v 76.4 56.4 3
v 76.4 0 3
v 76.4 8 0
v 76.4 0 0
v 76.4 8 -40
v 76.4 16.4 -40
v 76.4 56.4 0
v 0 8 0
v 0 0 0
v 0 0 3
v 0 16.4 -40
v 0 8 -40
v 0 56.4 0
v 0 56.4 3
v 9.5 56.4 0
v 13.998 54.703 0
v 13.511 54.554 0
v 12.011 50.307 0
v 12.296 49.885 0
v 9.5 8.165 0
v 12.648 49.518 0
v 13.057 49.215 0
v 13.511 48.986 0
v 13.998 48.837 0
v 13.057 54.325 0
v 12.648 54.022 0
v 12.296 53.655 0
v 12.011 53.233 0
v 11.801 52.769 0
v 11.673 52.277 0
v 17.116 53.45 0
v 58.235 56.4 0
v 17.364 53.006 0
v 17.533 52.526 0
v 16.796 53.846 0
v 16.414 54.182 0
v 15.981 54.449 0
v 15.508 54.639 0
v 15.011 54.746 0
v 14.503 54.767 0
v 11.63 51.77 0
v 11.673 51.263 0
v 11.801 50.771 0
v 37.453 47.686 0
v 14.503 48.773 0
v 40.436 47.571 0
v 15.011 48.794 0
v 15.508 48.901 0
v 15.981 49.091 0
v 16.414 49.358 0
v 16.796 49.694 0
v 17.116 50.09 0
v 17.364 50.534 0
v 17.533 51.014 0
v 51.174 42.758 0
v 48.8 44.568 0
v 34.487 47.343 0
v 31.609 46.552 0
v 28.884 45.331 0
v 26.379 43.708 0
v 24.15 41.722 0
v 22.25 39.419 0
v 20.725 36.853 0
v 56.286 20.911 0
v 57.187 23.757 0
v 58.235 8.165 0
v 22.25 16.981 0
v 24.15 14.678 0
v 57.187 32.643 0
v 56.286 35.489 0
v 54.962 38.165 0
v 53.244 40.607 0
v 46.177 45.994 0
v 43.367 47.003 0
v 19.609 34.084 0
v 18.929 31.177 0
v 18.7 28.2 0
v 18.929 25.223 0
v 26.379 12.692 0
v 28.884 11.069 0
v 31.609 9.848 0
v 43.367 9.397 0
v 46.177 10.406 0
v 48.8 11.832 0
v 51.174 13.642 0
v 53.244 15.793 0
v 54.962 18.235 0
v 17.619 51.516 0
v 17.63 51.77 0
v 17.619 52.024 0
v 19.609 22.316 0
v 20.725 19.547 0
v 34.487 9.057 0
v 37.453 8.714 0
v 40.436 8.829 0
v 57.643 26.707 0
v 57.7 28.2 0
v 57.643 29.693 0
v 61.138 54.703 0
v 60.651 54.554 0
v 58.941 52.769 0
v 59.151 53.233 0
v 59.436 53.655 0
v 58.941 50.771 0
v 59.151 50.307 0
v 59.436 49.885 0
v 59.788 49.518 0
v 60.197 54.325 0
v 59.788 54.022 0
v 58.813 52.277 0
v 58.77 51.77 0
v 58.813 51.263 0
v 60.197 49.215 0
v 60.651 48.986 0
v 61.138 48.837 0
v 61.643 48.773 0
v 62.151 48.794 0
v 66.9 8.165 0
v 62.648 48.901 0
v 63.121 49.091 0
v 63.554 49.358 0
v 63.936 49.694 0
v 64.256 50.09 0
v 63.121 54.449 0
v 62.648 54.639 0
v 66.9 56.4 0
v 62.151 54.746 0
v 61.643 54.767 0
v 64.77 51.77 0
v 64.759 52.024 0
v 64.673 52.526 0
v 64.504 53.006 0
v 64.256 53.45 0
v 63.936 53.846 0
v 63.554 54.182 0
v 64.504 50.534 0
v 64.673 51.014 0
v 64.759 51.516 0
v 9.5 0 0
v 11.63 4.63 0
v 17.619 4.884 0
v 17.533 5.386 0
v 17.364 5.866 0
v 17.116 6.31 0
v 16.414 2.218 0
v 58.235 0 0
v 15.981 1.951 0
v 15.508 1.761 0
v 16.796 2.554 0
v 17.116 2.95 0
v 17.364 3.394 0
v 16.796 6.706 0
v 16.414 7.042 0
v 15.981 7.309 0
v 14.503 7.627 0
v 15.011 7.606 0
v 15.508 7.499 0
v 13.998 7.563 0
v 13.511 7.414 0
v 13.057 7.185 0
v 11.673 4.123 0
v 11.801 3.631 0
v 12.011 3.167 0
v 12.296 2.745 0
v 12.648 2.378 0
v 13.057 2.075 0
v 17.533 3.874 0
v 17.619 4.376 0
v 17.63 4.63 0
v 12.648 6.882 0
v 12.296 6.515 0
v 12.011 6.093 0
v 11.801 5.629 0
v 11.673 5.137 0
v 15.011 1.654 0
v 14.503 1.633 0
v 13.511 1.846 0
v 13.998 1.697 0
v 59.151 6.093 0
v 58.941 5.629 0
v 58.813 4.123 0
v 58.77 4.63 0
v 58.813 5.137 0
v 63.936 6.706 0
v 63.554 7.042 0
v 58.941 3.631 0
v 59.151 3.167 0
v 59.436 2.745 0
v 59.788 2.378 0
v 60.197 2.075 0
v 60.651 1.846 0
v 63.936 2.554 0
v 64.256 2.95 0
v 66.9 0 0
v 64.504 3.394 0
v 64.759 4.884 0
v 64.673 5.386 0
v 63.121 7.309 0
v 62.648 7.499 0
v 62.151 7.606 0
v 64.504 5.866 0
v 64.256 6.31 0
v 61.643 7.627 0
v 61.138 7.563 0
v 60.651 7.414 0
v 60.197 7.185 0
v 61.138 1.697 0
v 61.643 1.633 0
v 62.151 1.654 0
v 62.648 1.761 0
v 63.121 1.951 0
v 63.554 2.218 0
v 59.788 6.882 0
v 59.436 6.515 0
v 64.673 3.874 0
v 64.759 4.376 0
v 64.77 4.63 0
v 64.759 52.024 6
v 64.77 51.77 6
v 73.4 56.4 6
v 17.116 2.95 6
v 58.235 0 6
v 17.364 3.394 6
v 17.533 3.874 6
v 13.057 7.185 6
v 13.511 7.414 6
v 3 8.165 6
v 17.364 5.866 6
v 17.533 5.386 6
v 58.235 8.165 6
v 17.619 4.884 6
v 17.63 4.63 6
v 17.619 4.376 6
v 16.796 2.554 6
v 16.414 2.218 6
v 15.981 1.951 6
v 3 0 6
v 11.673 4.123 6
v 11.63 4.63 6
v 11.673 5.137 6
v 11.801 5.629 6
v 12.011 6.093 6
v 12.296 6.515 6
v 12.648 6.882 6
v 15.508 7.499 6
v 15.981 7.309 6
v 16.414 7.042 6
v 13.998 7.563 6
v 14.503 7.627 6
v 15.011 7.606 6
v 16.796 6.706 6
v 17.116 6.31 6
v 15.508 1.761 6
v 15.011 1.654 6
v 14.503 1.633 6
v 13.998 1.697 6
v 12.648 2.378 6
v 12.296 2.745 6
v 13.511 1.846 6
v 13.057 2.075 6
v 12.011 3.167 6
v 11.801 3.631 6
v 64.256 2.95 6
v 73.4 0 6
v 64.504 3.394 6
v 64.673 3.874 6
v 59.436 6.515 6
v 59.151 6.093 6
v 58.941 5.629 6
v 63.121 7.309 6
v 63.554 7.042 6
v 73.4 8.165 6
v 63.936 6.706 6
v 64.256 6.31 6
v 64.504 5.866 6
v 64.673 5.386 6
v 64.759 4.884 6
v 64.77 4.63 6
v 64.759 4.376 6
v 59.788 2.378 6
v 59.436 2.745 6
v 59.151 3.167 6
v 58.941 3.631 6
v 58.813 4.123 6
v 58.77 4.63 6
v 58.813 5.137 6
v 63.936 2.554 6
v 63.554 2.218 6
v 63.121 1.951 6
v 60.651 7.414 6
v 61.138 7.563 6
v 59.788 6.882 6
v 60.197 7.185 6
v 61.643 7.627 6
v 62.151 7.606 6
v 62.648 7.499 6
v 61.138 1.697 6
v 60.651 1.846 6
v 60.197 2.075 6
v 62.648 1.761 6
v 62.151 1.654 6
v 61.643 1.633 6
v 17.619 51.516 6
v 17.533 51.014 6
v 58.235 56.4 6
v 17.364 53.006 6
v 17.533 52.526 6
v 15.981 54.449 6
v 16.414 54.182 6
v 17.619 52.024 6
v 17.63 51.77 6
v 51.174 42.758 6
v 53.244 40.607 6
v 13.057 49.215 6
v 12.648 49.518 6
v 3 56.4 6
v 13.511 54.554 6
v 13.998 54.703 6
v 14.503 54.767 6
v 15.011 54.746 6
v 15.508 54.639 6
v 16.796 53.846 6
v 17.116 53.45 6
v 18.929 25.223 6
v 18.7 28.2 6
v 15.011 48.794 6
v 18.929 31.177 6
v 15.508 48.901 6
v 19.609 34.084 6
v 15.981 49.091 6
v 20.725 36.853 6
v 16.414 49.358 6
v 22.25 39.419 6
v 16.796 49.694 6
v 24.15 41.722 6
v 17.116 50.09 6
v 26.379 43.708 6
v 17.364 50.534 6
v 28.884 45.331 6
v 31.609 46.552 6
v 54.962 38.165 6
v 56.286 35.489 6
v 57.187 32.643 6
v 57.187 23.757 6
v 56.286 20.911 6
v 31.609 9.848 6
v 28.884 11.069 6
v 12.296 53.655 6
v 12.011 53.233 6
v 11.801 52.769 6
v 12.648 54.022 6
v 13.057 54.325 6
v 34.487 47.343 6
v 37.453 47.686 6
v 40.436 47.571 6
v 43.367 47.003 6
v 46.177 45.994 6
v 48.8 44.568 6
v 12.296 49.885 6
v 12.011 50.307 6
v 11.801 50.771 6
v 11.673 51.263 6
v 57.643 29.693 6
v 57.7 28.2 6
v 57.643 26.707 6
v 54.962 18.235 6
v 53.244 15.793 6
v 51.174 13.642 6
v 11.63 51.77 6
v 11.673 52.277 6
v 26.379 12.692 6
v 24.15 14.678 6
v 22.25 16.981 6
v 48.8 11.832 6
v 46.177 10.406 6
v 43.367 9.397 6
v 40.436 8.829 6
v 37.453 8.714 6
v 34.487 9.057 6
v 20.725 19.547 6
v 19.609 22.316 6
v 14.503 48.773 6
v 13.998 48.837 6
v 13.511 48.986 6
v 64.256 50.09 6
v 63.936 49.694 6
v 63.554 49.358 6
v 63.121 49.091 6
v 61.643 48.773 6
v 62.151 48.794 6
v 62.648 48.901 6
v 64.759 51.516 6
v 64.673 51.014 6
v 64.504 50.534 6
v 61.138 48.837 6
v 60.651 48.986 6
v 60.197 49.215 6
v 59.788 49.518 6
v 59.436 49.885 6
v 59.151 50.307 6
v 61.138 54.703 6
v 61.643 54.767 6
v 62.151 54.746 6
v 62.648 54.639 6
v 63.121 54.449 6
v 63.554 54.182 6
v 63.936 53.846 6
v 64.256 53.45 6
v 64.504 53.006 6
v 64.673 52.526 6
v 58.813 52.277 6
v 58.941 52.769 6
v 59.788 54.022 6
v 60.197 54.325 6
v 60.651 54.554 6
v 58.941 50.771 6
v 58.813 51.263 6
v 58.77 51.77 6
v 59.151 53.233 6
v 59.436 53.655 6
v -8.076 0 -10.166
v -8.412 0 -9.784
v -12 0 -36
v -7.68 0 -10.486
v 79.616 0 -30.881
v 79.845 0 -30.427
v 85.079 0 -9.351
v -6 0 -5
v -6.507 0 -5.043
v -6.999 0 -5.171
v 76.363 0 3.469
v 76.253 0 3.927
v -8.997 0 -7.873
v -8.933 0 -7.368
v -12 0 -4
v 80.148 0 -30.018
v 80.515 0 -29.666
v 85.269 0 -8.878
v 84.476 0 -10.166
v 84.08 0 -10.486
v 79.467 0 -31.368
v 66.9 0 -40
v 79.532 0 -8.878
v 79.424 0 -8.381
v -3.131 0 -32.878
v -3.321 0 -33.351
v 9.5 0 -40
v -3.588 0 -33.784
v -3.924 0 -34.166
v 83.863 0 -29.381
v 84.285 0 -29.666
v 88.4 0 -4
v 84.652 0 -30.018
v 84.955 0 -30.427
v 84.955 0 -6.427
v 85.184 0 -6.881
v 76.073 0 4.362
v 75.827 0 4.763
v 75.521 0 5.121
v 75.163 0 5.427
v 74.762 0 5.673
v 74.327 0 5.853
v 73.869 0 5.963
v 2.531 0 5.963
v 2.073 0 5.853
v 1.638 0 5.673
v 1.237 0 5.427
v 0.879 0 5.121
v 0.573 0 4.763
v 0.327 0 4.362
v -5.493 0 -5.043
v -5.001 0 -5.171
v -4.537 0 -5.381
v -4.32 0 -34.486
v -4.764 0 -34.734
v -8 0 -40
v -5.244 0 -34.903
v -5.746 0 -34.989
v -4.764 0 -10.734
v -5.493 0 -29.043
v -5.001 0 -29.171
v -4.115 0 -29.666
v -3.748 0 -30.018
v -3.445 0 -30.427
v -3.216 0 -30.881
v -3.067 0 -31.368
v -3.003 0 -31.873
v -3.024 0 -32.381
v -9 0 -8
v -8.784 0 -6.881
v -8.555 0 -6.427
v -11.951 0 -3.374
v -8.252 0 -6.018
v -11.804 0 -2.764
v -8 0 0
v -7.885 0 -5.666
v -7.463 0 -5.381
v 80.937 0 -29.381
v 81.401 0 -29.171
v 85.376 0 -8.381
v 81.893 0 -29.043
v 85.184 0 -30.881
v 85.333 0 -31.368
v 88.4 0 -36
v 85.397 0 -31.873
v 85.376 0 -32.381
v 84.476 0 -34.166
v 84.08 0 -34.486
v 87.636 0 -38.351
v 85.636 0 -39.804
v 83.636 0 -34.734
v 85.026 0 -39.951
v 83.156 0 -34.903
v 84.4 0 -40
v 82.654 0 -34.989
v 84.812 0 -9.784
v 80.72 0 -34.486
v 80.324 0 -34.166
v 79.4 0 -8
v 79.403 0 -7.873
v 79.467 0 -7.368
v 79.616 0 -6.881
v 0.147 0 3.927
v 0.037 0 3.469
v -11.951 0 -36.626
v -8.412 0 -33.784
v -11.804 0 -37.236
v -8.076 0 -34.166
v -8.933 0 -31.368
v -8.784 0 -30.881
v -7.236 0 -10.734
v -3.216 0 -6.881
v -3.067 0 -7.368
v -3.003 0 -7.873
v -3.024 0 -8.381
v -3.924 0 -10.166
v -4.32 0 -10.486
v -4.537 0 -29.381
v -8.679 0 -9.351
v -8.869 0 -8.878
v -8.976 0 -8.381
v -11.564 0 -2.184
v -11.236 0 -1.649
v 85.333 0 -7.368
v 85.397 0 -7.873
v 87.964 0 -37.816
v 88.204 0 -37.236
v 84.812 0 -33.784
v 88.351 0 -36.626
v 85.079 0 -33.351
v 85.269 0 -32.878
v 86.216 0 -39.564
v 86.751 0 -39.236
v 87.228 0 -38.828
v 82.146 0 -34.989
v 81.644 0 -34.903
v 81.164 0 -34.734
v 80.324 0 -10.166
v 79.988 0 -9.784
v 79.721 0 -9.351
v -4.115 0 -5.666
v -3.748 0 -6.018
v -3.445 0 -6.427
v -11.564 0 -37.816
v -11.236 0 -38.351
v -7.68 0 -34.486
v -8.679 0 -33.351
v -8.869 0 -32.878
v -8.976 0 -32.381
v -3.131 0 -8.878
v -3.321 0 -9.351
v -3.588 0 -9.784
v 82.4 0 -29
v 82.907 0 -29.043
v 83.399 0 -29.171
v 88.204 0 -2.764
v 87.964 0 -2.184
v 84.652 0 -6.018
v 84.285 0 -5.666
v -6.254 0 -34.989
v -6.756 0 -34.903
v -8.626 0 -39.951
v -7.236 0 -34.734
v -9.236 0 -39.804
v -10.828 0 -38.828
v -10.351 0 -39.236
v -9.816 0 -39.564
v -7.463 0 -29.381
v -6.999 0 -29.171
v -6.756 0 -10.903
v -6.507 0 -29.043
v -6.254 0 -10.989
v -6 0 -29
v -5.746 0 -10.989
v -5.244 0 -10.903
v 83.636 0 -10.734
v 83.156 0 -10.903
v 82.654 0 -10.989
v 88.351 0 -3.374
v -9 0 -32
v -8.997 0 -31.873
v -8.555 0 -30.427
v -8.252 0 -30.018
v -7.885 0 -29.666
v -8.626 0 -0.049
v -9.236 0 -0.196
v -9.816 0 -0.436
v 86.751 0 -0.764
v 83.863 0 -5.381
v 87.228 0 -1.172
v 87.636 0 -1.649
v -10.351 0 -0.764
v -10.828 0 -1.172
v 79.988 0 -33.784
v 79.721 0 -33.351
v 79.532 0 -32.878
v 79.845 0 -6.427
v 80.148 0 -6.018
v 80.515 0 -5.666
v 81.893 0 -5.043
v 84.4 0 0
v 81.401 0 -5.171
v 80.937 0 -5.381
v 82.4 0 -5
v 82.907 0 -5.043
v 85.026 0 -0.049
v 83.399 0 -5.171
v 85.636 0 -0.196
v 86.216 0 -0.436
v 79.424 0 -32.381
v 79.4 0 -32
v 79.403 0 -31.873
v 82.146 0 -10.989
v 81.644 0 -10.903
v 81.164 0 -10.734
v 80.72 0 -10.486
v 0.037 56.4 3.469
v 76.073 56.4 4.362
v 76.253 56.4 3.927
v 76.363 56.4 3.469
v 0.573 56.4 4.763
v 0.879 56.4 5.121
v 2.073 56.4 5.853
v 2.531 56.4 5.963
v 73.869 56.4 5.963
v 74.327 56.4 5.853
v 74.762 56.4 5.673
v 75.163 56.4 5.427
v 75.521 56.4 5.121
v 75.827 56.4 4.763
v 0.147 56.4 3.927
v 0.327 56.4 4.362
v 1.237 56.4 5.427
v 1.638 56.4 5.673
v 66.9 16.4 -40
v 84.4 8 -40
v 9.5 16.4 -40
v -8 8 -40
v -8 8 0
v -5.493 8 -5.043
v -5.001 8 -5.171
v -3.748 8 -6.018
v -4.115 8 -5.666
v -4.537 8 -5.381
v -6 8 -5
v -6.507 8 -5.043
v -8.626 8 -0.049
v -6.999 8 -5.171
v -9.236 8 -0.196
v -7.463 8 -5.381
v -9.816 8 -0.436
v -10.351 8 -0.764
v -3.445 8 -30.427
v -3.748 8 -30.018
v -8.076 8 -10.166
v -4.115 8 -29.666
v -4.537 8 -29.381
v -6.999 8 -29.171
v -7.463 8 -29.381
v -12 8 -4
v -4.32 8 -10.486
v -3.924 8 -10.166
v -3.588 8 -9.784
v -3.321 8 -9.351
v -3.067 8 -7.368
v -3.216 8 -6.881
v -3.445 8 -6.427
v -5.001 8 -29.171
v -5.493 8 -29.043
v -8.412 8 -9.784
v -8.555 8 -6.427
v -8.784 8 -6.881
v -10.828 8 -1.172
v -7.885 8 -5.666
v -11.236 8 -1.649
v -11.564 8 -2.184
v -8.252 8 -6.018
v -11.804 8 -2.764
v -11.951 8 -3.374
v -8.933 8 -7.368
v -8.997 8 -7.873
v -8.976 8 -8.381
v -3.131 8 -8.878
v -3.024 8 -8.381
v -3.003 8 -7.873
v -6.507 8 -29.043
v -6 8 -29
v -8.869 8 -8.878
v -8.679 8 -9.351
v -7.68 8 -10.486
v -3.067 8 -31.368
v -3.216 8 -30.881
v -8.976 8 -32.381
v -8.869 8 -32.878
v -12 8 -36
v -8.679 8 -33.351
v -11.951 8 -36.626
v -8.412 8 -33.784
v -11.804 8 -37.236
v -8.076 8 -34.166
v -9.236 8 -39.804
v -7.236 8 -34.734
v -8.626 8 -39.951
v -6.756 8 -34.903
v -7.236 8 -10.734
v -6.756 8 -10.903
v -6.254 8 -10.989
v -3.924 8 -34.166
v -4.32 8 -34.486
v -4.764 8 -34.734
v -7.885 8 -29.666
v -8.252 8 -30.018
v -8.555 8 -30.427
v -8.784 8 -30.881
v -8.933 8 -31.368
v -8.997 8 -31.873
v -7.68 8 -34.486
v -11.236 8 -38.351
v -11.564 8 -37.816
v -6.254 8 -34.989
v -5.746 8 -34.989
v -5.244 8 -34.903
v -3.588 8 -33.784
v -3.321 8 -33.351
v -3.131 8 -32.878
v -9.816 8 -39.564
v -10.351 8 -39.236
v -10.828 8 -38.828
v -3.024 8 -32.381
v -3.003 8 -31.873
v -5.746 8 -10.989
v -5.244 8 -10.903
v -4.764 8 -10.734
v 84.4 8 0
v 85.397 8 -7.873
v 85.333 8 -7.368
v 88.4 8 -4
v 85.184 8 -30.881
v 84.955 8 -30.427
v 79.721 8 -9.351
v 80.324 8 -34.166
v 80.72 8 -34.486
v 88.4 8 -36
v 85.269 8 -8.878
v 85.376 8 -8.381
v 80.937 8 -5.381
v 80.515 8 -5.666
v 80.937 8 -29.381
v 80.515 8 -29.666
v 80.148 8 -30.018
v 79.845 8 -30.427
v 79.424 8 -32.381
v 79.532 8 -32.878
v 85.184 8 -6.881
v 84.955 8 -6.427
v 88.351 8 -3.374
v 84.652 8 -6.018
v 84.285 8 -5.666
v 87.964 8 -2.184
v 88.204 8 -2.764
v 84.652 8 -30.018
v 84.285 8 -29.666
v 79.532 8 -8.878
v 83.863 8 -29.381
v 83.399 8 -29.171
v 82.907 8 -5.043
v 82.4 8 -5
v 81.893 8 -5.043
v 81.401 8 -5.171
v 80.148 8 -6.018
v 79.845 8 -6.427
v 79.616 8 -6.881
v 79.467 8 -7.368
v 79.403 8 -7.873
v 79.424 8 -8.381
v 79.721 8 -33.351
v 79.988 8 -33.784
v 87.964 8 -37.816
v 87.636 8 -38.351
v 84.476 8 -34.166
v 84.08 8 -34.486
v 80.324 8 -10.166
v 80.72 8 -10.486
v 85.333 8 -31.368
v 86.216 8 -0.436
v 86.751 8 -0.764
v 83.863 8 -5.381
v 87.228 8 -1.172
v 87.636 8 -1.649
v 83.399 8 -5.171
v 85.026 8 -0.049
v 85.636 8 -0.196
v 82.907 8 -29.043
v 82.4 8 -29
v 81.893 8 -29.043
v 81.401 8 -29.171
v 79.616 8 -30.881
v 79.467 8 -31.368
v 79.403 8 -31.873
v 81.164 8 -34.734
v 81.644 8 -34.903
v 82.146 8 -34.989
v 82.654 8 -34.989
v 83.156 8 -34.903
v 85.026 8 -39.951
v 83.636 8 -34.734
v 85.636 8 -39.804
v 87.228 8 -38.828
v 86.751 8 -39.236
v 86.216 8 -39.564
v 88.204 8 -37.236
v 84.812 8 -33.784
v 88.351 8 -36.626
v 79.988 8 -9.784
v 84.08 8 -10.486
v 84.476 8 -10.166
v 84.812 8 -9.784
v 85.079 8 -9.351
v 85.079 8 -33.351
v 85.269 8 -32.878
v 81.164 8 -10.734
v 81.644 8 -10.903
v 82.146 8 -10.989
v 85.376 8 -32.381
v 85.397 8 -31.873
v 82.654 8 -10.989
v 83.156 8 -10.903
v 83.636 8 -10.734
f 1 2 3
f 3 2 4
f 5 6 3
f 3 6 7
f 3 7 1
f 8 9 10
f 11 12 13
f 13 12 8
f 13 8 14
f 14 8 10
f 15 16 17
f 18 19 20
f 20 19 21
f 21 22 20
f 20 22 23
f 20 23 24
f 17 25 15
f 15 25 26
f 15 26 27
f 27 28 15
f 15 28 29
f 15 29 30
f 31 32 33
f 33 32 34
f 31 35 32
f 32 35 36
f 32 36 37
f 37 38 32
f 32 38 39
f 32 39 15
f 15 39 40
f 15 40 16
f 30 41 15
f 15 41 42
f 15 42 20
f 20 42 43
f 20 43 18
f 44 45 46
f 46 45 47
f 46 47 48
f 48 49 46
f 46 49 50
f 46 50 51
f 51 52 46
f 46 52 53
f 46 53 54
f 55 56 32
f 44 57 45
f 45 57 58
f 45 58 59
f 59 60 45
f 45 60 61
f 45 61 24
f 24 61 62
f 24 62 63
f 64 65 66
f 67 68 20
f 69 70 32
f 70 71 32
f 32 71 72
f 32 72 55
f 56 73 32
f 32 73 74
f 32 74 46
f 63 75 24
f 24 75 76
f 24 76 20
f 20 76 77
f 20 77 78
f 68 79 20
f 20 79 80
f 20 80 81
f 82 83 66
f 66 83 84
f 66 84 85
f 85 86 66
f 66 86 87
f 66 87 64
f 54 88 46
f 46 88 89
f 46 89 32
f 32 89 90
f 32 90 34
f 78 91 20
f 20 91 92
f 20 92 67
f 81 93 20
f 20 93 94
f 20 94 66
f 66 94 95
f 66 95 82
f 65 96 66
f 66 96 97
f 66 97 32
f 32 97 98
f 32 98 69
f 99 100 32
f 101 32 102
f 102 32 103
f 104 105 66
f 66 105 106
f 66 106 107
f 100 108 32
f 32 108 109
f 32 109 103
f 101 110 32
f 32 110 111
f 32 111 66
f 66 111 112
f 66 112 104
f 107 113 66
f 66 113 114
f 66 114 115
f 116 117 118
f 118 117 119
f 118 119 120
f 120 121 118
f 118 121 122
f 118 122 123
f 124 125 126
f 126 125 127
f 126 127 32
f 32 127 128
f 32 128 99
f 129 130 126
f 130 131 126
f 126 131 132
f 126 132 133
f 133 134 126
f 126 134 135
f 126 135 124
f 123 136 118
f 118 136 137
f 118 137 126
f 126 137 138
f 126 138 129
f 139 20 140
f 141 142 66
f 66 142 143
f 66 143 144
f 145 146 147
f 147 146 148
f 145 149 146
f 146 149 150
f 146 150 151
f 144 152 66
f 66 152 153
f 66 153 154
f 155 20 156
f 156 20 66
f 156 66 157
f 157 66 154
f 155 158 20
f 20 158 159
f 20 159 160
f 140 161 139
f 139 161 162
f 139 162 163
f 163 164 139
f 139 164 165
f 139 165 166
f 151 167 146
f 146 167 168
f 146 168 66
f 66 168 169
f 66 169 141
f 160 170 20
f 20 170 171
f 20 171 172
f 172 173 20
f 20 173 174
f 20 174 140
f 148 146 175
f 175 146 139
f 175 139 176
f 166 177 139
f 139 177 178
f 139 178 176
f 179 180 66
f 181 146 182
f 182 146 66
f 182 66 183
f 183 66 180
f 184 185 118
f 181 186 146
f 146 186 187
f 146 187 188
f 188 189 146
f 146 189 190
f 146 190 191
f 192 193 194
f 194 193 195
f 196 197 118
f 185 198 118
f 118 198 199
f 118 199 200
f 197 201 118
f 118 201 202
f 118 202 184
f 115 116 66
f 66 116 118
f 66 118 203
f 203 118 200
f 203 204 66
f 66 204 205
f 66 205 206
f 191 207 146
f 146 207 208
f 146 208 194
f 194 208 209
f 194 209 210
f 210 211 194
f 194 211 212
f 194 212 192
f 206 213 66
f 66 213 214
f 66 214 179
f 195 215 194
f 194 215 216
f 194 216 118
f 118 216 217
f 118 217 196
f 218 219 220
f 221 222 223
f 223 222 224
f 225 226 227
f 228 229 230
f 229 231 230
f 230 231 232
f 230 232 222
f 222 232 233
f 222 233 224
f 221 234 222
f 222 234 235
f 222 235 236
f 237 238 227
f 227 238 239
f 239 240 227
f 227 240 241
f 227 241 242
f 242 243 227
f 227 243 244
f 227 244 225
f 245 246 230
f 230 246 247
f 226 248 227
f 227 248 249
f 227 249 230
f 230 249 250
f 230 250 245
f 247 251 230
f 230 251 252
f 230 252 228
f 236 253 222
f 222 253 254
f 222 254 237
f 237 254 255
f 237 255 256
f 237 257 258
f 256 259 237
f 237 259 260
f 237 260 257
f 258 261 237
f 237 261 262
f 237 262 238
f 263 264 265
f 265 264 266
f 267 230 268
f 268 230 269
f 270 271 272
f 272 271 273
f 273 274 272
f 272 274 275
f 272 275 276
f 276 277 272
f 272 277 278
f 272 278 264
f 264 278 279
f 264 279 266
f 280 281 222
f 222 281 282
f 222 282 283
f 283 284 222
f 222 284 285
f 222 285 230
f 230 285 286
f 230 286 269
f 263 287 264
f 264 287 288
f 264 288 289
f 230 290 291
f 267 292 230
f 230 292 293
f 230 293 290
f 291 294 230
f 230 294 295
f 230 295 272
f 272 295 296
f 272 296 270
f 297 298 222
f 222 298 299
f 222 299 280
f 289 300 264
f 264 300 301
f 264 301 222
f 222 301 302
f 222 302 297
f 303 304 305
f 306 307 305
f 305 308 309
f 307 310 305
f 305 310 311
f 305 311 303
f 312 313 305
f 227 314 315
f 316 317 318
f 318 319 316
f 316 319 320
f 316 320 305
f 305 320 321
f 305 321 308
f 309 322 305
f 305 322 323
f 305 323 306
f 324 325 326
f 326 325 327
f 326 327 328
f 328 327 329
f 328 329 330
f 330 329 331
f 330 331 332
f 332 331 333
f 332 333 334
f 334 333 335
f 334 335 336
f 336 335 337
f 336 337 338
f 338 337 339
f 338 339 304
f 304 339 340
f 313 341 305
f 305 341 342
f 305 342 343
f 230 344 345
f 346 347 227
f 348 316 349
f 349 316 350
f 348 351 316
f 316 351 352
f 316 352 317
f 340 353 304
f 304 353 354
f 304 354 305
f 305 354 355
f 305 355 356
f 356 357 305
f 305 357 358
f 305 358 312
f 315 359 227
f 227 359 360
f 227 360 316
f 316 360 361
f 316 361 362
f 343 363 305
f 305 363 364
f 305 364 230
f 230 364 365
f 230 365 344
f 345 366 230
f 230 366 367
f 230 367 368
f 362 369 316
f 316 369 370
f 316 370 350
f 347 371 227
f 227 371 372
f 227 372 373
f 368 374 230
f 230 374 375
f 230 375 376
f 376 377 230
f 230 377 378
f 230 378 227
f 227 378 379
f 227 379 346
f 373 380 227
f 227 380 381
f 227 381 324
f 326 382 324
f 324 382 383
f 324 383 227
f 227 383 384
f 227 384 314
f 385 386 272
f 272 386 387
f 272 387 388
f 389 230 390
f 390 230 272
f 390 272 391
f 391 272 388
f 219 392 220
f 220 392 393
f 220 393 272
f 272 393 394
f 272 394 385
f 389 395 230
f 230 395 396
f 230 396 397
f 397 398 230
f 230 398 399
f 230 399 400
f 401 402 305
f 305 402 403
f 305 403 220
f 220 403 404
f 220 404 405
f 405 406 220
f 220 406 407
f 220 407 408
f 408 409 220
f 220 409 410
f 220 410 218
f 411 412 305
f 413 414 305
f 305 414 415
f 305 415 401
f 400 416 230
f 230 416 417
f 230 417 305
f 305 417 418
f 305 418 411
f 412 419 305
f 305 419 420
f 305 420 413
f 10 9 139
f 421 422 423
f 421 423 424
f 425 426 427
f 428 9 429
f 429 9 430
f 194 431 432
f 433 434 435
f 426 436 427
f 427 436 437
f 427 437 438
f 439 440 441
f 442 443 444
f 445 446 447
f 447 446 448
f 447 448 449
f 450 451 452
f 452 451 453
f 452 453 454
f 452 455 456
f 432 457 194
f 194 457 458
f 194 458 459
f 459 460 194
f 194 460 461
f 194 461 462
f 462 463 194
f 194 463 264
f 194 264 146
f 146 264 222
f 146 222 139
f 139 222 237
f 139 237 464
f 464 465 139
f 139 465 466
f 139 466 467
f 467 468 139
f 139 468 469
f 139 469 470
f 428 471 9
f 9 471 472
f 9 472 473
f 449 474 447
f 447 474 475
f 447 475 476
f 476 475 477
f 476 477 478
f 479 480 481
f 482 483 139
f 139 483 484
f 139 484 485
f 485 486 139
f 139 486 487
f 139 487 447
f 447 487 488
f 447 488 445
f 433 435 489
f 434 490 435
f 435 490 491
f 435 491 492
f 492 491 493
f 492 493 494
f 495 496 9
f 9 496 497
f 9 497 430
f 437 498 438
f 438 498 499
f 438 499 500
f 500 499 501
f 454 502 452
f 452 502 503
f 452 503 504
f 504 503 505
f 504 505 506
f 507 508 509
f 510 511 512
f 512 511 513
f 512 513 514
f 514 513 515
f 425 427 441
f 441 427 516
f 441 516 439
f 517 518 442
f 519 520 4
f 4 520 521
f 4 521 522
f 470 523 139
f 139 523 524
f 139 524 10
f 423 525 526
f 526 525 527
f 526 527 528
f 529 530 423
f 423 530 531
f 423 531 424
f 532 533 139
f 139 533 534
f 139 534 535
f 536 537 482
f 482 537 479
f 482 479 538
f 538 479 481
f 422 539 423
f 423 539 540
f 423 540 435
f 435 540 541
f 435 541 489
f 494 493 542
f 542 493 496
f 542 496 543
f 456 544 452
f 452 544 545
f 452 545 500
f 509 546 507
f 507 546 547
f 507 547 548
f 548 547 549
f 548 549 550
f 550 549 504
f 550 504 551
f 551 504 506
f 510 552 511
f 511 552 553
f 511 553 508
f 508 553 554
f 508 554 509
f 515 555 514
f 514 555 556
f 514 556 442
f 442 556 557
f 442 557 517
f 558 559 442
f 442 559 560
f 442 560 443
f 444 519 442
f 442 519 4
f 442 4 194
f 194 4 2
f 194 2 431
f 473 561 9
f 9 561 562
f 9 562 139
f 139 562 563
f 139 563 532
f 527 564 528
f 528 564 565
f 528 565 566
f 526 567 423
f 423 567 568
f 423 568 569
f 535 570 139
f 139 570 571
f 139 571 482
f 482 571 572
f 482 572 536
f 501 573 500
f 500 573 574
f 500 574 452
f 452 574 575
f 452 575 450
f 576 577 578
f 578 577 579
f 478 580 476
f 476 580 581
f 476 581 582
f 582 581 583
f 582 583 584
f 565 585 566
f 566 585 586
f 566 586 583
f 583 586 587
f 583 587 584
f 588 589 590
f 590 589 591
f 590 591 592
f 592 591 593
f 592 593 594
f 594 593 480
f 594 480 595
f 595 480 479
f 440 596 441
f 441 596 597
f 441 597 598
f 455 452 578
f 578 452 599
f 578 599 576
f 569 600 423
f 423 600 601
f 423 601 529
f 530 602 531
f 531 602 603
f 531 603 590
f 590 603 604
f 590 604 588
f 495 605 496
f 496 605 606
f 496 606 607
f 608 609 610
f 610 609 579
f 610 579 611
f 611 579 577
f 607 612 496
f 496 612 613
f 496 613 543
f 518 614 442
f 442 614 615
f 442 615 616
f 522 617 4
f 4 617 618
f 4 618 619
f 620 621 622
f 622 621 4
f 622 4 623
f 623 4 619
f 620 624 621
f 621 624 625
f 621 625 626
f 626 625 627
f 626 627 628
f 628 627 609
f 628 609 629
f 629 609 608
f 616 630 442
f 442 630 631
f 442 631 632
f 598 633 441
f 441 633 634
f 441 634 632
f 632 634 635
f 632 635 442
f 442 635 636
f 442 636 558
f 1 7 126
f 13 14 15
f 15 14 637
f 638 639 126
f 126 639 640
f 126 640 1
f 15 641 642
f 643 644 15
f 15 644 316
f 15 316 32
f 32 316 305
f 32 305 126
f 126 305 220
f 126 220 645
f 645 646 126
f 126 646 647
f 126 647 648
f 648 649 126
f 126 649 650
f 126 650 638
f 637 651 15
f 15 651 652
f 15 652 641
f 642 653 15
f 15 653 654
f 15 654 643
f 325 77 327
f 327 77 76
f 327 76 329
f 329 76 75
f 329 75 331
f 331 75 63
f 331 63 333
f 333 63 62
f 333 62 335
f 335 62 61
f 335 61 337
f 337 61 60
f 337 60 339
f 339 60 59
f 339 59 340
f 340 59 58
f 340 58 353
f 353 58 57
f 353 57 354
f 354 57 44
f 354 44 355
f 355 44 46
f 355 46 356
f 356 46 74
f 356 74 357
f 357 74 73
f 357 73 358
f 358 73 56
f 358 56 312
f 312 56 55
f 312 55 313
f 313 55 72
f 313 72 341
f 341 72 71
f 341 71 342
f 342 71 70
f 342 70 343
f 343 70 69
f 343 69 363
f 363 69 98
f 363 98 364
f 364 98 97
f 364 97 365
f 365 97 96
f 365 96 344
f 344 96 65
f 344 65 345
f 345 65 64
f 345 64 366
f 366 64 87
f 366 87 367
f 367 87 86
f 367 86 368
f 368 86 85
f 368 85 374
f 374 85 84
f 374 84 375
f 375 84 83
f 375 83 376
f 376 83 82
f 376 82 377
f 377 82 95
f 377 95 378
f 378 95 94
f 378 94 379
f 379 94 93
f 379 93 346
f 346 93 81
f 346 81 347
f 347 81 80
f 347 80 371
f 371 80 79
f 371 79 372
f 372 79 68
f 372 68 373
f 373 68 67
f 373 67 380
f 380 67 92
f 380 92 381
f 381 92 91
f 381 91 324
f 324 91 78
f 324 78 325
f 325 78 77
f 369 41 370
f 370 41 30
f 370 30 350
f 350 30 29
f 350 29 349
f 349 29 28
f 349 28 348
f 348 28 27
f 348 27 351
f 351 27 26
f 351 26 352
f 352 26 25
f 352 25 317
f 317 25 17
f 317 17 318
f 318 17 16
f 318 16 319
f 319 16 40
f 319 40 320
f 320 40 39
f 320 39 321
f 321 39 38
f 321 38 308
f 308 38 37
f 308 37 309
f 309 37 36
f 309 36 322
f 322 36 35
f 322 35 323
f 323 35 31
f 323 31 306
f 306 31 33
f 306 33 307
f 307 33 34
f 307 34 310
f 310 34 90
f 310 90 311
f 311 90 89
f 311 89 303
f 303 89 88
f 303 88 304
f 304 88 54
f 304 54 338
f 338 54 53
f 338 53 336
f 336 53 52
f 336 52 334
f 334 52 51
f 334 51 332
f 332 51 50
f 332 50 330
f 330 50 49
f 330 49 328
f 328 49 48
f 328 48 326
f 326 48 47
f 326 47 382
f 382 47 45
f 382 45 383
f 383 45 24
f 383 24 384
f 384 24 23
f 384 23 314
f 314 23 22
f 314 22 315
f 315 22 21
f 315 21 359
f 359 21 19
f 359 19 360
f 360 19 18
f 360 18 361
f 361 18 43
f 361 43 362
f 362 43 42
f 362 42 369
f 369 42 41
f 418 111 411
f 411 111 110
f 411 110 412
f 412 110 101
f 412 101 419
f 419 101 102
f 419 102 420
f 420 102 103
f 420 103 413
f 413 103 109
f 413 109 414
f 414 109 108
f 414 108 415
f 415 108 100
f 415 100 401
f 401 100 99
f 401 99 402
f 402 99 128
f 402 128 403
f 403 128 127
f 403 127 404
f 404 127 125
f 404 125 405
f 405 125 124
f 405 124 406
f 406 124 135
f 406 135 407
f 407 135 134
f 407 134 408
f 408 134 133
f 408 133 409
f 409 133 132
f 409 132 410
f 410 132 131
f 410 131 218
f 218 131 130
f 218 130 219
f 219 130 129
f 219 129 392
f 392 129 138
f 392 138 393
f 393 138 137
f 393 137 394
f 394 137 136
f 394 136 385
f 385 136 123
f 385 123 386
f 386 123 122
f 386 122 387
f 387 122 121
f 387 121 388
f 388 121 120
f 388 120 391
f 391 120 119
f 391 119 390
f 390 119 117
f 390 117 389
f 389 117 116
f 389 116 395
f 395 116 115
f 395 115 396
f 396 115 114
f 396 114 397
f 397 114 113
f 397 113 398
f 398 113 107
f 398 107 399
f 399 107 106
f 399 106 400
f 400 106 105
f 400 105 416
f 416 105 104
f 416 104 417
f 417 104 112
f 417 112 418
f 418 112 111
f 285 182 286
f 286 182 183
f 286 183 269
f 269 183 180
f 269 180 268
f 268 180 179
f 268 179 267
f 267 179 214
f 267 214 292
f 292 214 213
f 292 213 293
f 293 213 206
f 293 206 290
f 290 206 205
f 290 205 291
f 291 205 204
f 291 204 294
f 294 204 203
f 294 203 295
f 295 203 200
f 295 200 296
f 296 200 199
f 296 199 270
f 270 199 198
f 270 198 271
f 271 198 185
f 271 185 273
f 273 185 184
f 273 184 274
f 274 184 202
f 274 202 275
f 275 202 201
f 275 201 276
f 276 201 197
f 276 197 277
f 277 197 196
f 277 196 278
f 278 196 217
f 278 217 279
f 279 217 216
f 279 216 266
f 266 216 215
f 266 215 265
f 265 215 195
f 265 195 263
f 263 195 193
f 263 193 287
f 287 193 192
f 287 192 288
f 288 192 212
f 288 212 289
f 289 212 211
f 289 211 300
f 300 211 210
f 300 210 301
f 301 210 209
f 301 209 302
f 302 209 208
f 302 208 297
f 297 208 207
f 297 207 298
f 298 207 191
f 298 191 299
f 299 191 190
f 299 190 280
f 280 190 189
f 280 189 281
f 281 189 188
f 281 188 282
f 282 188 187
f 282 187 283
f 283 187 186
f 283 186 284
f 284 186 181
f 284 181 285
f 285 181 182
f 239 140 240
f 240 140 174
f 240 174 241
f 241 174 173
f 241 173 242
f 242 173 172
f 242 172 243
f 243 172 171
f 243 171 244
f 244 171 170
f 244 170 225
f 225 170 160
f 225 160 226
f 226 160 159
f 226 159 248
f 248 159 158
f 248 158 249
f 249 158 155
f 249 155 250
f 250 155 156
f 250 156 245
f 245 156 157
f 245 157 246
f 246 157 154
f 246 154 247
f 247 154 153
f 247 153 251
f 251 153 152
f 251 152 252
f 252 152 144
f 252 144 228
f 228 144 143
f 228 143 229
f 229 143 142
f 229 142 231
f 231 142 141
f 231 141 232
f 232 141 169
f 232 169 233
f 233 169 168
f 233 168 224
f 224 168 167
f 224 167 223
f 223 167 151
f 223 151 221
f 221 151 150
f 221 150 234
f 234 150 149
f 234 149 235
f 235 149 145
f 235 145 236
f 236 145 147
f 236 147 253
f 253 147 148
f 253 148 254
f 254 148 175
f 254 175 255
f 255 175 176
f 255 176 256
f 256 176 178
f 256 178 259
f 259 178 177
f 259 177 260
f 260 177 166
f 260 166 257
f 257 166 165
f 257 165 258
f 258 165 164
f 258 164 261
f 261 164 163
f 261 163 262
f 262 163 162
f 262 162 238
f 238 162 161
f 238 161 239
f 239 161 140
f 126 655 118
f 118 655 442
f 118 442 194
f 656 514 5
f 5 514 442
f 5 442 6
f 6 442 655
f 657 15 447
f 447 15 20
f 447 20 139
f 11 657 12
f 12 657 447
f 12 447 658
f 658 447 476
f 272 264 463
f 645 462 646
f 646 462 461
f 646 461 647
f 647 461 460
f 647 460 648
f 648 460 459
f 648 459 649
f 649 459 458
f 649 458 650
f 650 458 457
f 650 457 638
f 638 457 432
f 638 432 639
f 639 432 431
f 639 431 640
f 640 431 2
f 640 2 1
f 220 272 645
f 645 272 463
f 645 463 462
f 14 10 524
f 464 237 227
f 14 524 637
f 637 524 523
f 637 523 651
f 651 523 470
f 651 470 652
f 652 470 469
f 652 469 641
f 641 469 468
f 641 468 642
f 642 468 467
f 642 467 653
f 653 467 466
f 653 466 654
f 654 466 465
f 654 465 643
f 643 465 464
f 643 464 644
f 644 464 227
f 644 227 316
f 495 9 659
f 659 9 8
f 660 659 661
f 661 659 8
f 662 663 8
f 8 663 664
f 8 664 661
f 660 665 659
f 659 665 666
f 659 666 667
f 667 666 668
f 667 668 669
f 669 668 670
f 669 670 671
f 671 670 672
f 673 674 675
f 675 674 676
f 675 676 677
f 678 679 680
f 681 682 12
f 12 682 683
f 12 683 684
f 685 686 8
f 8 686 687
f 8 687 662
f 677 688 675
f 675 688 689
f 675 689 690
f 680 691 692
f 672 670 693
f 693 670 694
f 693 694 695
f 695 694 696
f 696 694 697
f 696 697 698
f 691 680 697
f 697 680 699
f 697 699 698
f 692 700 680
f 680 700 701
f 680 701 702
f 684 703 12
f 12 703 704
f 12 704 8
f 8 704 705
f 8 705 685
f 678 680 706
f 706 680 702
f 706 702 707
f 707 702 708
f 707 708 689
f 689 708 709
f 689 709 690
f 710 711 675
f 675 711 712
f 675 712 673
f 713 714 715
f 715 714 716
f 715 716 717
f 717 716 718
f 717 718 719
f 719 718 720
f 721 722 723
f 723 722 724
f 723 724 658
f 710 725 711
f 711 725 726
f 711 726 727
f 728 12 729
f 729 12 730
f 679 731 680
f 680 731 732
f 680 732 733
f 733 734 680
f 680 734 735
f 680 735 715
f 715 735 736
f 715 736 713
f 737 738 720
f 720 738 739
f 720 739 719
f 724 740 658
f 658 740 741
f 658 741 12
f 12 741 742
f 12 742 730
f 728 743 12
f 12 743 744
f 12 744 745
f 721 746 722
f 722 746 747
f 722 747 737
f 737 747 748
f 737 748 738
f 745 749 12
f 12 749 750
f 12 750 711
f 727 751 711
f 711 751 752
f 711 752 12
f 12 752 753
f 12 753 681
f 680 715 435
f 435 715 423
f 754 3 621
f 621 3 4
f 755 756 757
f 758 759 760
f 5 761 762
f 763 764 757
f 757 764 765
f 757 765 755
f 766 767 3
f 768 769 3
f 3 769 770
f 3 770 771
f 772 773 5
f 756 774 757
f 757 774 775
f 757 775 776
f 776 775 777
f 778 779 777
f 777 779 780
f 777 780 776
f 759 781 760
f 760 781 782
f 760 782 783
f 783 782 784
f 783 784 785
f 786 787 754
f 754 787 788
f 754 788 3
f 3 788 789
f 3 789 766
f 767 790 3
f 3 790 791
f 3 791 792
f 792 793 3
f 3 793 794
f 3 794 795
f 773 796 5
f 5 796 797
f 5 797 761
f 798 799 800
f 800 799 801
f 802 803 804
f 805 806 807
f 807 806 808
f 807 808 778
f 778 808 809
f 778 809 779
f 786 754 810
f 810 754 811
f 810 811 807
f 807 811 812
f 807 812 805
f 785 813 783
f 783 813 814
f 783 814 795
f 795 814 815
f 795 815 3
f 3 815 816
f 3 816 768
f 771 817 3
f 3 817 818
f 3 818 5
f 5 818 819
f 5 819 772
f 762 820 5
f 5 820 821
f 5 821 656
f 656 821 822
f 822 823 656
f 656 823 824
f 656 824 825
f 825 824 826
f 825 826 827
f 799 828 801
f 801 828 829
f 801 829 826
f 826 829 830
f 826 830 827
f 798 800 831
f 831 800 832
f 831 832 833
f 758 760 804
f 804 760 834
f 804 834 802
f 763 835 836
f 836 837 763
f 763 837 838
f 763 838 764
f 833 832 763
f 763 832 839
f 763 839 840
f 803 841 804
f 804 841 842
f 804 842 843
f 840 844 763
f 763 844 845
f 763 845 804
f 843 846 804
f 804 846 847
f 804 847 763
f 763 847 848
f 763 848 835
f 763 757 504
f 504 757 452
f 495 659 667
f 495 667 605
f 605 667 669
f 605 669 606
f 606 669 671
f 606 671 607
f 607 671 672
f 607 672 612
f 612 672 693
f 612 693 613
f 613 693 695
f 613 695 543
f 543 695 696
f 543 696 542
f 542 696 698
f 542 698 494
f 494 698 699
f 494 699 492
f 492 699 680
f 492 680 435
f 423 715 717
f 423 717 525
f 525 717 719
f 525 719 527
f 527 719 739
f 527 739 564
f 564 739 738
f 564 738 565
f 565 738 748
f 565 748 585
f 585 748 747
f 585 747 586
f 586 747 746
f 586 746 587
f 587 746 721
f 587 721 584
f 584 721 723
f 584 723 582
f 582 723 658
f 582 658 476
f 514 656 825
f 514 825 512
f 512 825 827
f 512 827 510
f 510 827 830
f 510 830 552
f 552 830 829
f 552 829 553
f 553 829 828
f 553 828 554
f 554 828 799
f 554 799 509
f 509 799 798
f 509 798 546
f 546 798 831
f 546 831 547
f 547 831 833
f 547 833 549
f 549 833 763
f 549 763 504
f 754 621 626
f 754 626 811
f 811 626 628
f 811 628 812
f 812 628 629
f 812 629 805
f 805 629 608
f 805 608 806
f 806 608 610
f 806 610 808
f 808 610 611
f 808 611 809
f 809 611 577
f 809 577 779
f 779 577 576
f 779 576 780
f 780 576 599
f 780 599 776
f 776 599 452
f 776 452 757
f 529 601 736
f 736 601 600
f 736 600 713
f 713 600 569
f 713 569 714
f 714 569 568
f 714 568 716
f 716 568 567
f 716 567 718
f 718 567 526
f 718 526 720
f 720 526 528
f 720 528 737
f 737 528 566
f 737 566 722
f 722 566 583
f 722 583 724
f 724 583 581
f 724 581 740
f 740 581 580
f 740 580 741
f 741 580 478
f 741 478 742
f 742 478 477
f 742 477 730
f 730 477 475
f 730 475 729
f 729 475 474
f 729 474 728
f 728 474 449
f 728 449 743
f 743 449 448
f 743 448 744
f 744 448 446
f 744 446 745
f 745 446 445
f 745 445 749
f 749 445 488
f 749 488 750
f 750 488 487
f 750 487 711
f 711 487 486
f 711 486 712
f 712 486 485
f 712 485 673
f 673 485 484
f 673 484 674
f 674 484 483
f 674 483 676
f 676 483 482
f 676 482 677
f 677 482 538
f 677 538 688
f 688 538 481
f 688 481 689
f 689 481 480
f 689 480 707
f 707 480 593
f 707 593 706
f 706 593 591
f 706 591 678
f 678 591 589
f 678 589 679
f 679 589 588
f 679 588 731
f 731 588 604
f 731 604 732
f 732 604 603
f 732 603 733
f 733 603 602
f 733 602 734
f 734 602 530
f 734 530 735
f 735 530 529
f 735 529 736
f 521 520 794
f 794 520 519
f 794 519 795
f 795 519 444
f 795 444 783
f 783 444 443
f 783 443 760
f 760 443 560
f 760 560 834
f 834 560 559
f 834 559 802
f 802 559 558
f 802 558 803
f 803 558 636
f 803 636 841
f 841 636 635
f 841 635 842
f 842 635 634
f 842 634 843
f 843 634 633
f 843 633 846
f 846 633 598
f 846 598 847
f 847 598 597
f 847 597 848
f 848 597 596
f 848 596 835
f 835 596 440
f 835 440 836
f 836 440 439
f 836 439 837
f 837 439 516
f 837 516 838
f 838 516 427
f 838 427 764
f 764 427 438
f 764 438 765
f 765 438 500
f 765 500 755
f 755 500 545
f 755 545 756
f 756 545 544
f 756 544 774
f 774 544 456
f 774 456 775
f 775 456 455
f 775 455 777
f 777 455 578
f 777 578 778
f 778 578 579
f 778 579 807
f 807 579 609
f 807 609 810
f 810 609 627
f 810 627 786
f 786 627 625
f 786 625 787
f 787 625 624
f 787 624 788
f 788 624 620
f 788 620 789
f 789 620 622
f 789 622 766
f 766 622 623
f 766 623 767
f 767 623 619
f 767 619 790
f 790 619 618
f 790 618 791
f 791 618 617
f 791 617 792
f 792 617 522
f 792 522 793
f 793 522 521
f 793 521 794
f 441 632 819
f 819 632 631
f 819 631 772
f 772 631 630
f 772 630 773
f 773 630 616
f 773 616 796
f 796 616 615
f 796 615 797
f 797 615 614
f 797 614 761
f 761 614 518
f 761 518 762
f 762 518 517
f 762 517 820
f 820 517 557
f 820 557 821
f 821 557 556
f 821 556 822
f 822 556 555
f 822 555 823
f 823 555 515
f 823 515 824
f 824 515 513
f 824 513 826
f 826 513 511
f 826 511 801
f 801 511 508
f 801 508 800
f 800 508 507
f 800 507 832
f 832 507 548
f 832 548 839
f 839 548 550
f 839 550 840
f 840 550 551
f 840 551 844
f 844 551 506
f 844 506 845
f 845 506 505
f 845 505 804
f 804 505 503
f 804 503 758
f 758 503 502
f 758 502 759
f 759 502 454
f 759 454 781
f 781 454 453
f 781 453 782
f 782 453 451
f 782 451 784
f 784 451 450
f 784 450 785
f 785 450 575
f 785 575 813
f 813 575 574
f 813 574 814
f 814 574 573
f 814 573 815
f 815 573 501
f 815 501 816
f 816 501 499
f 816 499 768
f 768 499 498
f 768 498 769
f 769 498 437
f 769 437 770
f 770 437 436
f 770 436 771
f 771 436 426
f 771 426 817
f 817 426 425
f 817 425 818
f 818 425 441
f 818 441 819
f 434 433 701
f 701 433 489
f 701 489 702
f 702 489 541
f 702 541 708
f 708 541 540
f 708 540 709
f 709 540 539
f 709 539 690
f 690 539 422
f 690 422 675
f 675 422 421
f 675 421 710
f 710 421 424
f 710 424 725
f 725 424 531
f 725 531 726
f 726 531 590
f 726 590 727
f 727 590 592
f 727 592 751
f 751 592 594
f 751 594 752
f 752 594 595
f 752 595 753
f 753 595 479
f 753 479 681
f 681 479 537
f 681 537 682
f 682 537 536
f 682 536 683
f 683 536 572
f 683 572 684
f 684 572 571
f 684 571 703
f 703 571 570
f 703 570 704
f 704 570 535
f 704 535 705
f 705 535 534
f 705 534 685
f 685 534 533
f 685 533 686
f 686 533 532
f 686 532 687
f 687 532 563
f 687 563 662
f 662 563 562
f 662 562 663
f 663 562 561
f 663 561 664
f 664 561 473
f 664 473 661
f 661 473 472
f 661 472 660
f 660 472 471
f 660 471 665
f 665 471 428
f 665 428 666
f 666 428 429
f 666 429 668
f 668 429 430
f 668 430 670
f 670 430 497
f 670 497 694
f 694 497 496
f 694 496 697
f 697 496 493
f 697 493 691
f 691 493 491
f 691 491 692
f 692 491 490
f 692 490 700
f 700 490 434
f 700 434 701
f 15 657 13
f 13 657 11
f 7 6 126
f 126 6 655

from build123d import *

# Parameters (mm, degrees)
SKETCH1_W           = 76.4
SKETCH1_H           = 56.4
SKETCH1_R           = 19.5
SKETCH1_R_2         = 3
BOSS_EXTRUDE1_DEPTH = 6
SKETCH2_W           = 9.5
SKETCH2_H           = 56.4
BOSS_EXTRUDE2_DEPTH = 40
FILLET1_R           = 3
SKETCH3_W           = 40
SKETCH3_H           = 8
BOSS_EXTRUDE3_DEPTH = 12
SKETCH4_W           = 40
SKETCH4_H           = 8
BOSS_EXTRUDE4_DEPTH = 12
FILLET2_R           = 4
SKETCH5_R           = 3
CUT_EXTRUDE1_DEPTH  = 12
CHAMFER1_SIZE       = 40


with BuildPart() as part:
    # Sketch1 → Boss-Extrude1 (new body)
    with BuildSketch(Plane.XY):
        with Locations((38.2, 28.2)):
            Rectangle(SKETCH1_W, SKETCH1_H)
        with Locations((38.2, 28.2)):
            Circle(SKETCH1_R, mode=Mode.SUBTRACT)
        with Locations((14.63, 51.77)):
            Circle(SKETCH1_R_2, mode=Mode.SUBTRACT)
        with Locations((61.77, 51.77)):
            Circle(SKETCH1_R_2, mode=Mode.SUBTRACT)
        with Locations((61.77, 4.63)):
            Circle(SKETCH1_R_2, mode=Mode.SUBTRACT)
        with Locations((14.63, 4.63)):
            Circle(SKETCH1_R_2, mode=Mode.SUBTRACT)
    extrude(amount=BOSS_EXTRUDE1_DEPTH)

    # Sketch2 → Boss-Extrude2 (add)
    with BuildSketch(Plane(origin=(0, 0, 0), x_dir=(-1, 0, 0), z_dir=(0, 0, -1))):
        with Locations((-71.65, 28.2)):
            Rectangle(SKETCH2_W, SKETCH2_H)
        with Locations((-4.75, 28.2)):
            Rectangle(SKETCH2_W, SKETCH2_H)
    extrude(amount=BOSS_EXTRUDE2_DEPTH)

    # Fillet1
    fillet1_edges = [part.edges().sort_by_distance(p)[0] for p in [
        (76.4, 28.2, 6),
        (0, 28.2, 6),
    ]]
    fillet(fillet1_edges, radius=FILLET1_R)

    # Sketch3 → Boss-Extrude3 (add)
    with BuildSketch(Plane.ZY):
        with Locations((-20, 4)):
            Rectangle(SKETCH3_W, SKETCH3_H)
    extrude(amount=BOSS_EXTRUDE3_DEPTH)

    # Sketch4 → Boss-Extrude4 (add)
    with BuildSketch(Plane(origin=(76.4, 0, 0), x_dir=(0, 0, -1), z_dir=(1, 0, 0))):
        with Locations((20, 4)):
            Rectangle(SKETCH4_W, SKETCH4_H)
    extrude(amount=BOSS_EXTRUDE4_DEPTH)

    # Fillet2
    fillet2_edges = [part.edges().sort_by_distance(p)[0] for p in [
        (-12, 4, -40),
        (-12, 4, 0),
        (88.4, 4, 0),
        (88.4, 4, -40),
    ]]
    fillet(fillet2_edges, radius=FILLET2_R)

    # Sketch5 → Cut-Extrude1 (cut)
    with BuildSketch(Plane(origin=(0, 8, 0), x_dir=(1, 0, 0), z_dir=(0, 1, 0))):
        with Locations(Location((-6, 32, 0), (0, 0, 270))):
            Circle(SKETCH5_R)
        with Locations(Location((-6, 8, 0), (0, 0, 270))):
            Circle(SKETCH5_R)
        with Locations(Location((82.4, 32, 0), (0, 0, 270))):
            Circle(SKETCH5_R)
        with Locations(Location((82.4, 8, 0), (0, 0, 270))):
            Circle(SKETCH5_R)
    extrude(amount=-CUT_EXTRUDE1_DEPTH, mode=Mode.SUBTRACT)

    # Chamfer1
    chamfer1_edges = [part.edges().sort_by_distance(p)[0] for p in [
        (4.75, 56.4, -40),
        (71.65, 56.4, -40),
    ]]
    chamfer(chamfer1_edges, length=CHAMFER1_SIZE)


solid = part.part
